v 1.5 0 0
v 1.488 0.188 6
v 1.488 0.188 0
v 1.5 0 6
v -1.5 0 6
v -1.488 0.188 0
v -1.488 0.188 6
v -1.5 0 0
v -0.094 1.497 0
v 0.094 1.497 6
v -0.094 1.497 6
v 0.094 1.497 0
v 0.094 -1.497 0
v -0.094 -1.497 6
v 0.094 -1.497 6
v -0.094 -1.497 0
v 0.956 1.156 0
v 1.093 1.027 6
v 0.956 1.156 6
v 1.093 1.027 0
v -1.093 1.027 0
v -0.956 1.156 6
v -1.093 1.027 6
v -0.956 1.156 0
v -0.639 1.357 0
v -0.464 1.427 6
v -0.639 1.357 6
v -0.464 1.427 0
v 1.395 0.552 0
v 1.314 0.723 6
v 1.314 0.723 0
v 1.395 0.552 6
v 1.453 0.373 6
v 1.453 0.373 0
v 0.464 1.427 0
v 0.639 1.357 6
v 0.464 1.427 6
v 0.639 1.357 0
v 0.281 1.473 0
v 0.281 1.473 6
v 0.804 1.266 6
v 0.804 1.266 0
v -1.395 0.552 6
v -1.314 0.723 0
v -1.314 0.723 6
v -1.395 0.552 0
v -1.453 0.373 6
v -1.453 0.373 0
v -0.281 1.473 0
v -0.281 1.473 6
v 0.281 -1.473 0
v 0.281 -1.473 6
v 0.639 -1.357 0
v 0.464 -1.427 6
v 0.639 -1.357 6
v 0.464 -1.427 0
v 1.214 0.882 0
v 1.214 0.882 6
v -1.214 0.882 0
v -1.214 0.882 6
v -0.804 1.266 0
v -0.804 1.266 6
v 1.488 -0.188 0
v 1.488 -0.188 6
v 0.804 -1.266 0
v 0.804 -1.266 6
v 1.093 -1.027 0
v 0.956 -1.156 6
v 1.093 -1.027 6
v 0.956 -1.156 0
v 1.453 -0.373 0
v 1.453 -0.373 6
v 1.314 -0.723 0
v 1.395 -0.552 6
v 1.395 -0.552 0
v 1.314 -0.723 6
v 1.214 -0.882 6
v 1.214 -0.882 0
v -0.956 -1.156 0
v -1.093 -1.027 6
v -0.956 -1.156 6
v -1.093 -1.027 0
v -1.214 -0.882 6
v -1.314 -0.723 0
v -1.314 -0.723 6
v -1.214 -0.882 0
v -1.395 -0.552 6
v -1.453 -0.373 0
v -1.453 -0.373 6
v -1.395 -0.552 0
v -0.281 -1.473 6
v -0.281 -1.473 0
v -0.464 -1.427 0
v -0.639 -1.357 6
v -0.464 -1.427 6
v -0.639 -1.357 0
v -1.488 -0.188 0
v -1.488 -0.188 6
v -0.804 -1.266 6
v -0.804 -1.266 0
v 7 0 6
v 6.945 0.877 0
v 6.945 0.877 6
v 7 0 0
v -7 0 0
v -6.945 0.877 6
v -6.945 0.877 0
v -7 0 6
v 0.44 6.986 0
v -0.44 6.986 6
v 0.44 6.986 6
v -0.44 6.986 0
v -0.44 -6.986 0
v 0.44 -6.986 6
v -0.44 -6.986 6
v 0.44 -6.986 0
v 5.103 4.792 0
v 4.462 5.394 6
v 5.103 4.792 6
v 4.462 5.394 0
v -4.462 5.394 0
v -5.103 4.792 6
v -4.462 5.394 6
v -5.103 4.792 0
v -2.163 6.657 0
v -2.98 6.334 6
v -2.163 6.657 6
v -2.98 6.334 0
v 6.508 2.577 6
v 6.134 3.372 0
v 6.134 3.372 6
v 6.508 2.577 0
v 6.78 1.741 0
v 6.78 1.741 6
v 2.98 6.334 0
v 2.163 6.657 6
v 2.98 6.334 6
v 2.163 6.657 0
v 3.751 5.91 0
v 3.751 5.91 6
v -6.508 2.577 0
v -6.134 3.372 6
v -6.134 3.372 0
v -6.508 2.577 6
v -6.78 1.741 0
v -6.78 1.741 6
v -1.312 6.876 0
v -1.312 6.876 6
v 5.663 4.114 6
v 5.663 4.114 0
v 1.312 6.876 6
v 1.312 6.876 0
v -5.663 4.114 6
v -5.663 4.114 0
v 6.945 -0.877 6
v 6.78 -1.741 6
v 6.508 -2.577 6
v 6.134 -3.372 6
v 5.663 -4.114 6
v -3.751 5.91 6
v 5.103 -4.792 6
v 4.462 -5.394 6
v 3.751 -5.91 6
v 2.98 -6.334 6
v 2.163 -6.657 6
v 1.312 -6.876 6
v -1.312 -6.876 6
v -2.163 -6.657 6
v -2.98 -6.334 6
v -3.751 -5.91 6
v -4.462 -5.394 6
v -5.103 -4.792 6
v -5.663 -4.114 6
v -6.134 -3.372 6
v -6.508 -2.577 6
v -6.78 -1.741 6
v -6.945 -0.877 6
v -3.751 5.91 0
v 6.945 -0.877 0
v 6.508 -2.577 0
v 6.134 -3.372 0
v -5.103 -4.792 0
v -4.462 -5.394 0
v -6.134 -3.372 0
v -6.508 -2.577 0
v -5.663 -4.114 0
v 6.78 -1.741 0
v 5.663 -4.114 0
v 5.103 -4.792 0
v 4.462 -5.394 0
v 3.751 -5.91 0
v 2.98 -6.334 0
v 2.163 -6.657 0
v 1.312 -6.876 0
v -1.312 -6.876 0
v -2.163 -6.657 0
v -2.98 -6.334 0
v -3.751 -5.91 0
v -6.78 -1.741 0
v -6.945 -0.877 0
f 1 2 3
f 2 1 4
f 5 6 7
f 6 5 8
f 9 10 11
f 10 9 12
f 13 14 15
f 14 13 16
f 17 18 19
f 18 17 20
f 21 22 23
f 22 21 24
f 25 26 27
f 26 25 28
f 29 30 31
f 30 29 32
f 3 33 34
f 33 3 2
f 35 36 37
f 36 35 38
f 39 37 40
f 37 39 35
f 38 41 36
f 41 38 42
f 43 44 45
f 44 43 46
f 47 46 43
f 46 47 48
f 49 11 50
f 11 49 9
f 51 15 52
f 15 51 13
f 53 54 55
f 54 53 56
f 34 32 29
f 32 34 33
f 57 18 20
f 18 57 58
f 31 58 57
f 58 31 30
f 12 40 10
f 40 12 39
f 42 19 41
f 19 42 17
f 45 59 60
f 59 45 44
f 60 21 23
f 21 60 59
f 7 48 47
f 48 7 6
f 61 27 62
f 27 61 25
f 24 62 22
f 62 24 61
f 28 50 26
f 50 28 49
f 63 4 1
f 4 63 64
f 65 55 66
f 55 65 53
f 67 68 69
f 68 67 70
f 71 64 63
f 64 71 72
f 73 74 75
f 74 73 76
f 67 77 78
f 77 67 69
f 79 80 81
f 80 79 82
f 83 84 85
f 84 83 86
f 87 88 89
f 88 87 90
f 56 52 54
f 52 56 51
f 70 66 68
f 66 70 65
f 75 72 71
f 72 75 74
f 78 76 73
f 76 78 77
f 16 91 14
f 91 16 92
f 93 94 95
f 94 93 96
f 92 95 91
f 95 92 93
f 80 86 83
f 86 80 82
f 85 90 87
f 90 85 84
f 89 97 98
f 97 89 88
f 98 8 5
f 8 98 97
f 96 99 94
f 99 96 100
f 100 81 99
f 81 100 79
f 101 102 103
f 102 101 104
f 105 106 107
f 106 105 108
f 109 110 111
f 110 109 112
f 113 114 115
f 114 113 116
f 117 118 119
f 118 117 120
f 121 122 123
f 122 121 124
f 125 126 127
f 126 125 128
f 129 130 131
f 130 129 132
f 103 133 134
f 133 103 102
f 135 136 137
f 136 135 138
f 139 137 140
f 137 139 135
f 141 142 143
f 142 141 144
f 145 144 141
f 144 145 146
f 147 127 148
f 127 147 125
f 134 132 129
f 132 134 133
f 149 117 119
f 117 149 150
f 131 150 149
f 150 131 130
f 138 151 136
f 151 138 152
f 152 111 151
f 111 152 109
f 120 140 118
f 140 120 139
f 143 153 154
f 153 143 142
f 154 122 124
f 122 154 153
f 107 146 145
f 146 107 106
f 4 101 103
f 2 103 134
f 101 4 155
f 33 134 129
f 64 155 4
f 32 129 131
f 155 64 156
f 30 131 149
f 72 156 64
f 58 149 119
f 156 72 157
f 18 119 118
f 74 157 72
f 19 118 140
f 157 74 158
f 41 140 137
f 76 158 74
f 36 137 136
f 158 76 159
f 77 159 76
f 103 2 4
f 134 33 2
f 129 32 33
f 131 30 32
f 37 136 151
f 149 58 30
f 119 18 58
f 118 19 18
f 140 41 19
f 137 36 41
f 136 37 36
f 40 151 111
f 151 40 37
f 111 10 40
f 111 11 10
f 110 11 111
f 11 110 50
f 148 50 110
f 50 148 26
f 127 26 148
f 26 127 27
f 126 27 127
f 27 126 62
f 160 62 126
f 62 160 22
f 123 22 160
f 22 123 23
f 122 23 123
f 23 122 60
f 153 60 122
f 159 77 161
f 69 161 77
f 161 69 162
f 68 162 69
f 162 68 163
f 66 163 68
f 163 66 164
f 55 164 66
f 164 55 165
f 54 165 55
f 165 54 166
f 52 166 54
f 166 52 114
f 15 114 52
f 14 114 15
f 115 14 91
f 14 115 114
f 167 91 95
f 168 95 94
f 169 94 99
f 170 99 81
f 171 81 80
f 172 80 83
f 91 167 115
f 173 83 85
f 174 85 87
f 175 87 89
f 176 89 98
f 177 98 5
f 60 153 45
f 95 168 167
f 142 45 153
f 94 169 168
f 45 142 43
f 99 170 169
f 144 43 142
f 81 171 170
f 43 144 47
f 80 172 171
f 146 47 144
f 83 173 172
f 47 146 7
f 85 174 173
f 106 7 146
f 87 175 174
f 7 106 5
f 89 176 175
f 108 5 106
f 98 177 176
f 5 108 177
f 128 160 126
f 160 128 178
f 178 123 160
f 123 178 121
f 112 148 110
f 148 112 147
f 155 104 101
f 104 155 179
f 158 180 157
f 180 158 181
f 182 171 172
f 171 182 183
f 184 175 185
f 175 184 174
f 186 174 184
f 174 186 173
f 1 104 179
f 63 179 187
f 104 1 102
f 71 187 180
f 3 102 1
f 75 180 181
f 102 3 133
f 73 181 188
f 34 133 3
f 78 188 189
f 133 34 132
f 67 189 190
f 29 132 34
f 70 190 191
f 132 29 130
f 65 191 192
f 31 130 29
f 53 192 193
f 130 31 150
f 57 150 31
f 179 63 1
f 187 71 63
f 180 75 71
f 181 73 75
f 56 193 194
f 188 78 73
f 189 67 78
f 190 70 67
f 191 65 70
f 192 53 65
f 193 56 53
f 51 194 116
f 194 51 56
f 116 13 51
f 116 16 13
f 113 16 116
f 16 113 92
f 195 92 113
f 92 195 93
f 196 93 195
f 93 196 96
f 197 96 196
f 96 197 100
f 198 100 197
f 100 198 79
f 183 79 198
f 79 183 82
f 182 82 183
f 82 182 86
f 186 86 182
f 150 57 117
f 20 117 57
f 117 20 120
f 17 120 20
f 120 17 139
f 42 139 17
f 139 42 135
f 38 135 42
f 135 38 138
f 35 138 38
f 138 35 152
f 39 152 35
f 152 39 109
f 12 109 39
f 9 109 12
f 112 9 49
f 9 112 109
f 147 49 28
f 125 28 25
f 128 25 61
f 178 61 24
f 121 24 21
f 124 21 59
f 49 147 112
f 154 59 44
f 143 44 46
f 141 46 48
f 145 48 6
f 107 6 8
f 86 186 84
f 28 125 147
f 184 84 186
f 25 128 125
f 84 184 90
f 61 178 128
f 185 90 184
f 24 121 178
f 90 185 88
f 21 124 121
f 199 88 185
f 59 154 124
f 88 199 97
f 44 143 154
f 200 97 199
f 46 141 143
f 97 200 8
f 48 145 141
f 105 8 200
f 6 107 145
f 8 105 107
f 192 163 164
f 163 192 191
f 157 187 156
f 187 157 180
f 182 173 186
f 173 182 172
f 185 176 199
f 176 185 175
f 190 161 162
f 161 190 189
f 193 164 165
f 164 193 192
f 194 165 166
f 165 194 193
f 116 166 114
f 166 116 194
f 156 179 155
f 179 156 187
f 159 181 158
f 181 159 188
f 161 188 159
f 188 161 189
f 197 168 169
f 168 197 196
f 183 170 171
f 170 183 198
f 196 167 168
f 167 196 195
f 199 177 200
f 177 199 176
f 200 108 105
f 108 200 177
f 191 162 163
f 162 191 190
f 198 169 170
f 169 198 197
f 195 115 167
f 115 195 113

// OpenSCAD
$fn = 50;


difference() {
	union() {
		cylinder(h = 6, r = 7.0000000000);
	}
	union() {
		translate(v = [0, 0, -100]) {
			cylinder(h = 200, r = 1.5000000000);
		}
		translate(v = [0, 0, -100]) {
			cylinder(h = 200, r = 1.5000000000);
		}
	}
}
